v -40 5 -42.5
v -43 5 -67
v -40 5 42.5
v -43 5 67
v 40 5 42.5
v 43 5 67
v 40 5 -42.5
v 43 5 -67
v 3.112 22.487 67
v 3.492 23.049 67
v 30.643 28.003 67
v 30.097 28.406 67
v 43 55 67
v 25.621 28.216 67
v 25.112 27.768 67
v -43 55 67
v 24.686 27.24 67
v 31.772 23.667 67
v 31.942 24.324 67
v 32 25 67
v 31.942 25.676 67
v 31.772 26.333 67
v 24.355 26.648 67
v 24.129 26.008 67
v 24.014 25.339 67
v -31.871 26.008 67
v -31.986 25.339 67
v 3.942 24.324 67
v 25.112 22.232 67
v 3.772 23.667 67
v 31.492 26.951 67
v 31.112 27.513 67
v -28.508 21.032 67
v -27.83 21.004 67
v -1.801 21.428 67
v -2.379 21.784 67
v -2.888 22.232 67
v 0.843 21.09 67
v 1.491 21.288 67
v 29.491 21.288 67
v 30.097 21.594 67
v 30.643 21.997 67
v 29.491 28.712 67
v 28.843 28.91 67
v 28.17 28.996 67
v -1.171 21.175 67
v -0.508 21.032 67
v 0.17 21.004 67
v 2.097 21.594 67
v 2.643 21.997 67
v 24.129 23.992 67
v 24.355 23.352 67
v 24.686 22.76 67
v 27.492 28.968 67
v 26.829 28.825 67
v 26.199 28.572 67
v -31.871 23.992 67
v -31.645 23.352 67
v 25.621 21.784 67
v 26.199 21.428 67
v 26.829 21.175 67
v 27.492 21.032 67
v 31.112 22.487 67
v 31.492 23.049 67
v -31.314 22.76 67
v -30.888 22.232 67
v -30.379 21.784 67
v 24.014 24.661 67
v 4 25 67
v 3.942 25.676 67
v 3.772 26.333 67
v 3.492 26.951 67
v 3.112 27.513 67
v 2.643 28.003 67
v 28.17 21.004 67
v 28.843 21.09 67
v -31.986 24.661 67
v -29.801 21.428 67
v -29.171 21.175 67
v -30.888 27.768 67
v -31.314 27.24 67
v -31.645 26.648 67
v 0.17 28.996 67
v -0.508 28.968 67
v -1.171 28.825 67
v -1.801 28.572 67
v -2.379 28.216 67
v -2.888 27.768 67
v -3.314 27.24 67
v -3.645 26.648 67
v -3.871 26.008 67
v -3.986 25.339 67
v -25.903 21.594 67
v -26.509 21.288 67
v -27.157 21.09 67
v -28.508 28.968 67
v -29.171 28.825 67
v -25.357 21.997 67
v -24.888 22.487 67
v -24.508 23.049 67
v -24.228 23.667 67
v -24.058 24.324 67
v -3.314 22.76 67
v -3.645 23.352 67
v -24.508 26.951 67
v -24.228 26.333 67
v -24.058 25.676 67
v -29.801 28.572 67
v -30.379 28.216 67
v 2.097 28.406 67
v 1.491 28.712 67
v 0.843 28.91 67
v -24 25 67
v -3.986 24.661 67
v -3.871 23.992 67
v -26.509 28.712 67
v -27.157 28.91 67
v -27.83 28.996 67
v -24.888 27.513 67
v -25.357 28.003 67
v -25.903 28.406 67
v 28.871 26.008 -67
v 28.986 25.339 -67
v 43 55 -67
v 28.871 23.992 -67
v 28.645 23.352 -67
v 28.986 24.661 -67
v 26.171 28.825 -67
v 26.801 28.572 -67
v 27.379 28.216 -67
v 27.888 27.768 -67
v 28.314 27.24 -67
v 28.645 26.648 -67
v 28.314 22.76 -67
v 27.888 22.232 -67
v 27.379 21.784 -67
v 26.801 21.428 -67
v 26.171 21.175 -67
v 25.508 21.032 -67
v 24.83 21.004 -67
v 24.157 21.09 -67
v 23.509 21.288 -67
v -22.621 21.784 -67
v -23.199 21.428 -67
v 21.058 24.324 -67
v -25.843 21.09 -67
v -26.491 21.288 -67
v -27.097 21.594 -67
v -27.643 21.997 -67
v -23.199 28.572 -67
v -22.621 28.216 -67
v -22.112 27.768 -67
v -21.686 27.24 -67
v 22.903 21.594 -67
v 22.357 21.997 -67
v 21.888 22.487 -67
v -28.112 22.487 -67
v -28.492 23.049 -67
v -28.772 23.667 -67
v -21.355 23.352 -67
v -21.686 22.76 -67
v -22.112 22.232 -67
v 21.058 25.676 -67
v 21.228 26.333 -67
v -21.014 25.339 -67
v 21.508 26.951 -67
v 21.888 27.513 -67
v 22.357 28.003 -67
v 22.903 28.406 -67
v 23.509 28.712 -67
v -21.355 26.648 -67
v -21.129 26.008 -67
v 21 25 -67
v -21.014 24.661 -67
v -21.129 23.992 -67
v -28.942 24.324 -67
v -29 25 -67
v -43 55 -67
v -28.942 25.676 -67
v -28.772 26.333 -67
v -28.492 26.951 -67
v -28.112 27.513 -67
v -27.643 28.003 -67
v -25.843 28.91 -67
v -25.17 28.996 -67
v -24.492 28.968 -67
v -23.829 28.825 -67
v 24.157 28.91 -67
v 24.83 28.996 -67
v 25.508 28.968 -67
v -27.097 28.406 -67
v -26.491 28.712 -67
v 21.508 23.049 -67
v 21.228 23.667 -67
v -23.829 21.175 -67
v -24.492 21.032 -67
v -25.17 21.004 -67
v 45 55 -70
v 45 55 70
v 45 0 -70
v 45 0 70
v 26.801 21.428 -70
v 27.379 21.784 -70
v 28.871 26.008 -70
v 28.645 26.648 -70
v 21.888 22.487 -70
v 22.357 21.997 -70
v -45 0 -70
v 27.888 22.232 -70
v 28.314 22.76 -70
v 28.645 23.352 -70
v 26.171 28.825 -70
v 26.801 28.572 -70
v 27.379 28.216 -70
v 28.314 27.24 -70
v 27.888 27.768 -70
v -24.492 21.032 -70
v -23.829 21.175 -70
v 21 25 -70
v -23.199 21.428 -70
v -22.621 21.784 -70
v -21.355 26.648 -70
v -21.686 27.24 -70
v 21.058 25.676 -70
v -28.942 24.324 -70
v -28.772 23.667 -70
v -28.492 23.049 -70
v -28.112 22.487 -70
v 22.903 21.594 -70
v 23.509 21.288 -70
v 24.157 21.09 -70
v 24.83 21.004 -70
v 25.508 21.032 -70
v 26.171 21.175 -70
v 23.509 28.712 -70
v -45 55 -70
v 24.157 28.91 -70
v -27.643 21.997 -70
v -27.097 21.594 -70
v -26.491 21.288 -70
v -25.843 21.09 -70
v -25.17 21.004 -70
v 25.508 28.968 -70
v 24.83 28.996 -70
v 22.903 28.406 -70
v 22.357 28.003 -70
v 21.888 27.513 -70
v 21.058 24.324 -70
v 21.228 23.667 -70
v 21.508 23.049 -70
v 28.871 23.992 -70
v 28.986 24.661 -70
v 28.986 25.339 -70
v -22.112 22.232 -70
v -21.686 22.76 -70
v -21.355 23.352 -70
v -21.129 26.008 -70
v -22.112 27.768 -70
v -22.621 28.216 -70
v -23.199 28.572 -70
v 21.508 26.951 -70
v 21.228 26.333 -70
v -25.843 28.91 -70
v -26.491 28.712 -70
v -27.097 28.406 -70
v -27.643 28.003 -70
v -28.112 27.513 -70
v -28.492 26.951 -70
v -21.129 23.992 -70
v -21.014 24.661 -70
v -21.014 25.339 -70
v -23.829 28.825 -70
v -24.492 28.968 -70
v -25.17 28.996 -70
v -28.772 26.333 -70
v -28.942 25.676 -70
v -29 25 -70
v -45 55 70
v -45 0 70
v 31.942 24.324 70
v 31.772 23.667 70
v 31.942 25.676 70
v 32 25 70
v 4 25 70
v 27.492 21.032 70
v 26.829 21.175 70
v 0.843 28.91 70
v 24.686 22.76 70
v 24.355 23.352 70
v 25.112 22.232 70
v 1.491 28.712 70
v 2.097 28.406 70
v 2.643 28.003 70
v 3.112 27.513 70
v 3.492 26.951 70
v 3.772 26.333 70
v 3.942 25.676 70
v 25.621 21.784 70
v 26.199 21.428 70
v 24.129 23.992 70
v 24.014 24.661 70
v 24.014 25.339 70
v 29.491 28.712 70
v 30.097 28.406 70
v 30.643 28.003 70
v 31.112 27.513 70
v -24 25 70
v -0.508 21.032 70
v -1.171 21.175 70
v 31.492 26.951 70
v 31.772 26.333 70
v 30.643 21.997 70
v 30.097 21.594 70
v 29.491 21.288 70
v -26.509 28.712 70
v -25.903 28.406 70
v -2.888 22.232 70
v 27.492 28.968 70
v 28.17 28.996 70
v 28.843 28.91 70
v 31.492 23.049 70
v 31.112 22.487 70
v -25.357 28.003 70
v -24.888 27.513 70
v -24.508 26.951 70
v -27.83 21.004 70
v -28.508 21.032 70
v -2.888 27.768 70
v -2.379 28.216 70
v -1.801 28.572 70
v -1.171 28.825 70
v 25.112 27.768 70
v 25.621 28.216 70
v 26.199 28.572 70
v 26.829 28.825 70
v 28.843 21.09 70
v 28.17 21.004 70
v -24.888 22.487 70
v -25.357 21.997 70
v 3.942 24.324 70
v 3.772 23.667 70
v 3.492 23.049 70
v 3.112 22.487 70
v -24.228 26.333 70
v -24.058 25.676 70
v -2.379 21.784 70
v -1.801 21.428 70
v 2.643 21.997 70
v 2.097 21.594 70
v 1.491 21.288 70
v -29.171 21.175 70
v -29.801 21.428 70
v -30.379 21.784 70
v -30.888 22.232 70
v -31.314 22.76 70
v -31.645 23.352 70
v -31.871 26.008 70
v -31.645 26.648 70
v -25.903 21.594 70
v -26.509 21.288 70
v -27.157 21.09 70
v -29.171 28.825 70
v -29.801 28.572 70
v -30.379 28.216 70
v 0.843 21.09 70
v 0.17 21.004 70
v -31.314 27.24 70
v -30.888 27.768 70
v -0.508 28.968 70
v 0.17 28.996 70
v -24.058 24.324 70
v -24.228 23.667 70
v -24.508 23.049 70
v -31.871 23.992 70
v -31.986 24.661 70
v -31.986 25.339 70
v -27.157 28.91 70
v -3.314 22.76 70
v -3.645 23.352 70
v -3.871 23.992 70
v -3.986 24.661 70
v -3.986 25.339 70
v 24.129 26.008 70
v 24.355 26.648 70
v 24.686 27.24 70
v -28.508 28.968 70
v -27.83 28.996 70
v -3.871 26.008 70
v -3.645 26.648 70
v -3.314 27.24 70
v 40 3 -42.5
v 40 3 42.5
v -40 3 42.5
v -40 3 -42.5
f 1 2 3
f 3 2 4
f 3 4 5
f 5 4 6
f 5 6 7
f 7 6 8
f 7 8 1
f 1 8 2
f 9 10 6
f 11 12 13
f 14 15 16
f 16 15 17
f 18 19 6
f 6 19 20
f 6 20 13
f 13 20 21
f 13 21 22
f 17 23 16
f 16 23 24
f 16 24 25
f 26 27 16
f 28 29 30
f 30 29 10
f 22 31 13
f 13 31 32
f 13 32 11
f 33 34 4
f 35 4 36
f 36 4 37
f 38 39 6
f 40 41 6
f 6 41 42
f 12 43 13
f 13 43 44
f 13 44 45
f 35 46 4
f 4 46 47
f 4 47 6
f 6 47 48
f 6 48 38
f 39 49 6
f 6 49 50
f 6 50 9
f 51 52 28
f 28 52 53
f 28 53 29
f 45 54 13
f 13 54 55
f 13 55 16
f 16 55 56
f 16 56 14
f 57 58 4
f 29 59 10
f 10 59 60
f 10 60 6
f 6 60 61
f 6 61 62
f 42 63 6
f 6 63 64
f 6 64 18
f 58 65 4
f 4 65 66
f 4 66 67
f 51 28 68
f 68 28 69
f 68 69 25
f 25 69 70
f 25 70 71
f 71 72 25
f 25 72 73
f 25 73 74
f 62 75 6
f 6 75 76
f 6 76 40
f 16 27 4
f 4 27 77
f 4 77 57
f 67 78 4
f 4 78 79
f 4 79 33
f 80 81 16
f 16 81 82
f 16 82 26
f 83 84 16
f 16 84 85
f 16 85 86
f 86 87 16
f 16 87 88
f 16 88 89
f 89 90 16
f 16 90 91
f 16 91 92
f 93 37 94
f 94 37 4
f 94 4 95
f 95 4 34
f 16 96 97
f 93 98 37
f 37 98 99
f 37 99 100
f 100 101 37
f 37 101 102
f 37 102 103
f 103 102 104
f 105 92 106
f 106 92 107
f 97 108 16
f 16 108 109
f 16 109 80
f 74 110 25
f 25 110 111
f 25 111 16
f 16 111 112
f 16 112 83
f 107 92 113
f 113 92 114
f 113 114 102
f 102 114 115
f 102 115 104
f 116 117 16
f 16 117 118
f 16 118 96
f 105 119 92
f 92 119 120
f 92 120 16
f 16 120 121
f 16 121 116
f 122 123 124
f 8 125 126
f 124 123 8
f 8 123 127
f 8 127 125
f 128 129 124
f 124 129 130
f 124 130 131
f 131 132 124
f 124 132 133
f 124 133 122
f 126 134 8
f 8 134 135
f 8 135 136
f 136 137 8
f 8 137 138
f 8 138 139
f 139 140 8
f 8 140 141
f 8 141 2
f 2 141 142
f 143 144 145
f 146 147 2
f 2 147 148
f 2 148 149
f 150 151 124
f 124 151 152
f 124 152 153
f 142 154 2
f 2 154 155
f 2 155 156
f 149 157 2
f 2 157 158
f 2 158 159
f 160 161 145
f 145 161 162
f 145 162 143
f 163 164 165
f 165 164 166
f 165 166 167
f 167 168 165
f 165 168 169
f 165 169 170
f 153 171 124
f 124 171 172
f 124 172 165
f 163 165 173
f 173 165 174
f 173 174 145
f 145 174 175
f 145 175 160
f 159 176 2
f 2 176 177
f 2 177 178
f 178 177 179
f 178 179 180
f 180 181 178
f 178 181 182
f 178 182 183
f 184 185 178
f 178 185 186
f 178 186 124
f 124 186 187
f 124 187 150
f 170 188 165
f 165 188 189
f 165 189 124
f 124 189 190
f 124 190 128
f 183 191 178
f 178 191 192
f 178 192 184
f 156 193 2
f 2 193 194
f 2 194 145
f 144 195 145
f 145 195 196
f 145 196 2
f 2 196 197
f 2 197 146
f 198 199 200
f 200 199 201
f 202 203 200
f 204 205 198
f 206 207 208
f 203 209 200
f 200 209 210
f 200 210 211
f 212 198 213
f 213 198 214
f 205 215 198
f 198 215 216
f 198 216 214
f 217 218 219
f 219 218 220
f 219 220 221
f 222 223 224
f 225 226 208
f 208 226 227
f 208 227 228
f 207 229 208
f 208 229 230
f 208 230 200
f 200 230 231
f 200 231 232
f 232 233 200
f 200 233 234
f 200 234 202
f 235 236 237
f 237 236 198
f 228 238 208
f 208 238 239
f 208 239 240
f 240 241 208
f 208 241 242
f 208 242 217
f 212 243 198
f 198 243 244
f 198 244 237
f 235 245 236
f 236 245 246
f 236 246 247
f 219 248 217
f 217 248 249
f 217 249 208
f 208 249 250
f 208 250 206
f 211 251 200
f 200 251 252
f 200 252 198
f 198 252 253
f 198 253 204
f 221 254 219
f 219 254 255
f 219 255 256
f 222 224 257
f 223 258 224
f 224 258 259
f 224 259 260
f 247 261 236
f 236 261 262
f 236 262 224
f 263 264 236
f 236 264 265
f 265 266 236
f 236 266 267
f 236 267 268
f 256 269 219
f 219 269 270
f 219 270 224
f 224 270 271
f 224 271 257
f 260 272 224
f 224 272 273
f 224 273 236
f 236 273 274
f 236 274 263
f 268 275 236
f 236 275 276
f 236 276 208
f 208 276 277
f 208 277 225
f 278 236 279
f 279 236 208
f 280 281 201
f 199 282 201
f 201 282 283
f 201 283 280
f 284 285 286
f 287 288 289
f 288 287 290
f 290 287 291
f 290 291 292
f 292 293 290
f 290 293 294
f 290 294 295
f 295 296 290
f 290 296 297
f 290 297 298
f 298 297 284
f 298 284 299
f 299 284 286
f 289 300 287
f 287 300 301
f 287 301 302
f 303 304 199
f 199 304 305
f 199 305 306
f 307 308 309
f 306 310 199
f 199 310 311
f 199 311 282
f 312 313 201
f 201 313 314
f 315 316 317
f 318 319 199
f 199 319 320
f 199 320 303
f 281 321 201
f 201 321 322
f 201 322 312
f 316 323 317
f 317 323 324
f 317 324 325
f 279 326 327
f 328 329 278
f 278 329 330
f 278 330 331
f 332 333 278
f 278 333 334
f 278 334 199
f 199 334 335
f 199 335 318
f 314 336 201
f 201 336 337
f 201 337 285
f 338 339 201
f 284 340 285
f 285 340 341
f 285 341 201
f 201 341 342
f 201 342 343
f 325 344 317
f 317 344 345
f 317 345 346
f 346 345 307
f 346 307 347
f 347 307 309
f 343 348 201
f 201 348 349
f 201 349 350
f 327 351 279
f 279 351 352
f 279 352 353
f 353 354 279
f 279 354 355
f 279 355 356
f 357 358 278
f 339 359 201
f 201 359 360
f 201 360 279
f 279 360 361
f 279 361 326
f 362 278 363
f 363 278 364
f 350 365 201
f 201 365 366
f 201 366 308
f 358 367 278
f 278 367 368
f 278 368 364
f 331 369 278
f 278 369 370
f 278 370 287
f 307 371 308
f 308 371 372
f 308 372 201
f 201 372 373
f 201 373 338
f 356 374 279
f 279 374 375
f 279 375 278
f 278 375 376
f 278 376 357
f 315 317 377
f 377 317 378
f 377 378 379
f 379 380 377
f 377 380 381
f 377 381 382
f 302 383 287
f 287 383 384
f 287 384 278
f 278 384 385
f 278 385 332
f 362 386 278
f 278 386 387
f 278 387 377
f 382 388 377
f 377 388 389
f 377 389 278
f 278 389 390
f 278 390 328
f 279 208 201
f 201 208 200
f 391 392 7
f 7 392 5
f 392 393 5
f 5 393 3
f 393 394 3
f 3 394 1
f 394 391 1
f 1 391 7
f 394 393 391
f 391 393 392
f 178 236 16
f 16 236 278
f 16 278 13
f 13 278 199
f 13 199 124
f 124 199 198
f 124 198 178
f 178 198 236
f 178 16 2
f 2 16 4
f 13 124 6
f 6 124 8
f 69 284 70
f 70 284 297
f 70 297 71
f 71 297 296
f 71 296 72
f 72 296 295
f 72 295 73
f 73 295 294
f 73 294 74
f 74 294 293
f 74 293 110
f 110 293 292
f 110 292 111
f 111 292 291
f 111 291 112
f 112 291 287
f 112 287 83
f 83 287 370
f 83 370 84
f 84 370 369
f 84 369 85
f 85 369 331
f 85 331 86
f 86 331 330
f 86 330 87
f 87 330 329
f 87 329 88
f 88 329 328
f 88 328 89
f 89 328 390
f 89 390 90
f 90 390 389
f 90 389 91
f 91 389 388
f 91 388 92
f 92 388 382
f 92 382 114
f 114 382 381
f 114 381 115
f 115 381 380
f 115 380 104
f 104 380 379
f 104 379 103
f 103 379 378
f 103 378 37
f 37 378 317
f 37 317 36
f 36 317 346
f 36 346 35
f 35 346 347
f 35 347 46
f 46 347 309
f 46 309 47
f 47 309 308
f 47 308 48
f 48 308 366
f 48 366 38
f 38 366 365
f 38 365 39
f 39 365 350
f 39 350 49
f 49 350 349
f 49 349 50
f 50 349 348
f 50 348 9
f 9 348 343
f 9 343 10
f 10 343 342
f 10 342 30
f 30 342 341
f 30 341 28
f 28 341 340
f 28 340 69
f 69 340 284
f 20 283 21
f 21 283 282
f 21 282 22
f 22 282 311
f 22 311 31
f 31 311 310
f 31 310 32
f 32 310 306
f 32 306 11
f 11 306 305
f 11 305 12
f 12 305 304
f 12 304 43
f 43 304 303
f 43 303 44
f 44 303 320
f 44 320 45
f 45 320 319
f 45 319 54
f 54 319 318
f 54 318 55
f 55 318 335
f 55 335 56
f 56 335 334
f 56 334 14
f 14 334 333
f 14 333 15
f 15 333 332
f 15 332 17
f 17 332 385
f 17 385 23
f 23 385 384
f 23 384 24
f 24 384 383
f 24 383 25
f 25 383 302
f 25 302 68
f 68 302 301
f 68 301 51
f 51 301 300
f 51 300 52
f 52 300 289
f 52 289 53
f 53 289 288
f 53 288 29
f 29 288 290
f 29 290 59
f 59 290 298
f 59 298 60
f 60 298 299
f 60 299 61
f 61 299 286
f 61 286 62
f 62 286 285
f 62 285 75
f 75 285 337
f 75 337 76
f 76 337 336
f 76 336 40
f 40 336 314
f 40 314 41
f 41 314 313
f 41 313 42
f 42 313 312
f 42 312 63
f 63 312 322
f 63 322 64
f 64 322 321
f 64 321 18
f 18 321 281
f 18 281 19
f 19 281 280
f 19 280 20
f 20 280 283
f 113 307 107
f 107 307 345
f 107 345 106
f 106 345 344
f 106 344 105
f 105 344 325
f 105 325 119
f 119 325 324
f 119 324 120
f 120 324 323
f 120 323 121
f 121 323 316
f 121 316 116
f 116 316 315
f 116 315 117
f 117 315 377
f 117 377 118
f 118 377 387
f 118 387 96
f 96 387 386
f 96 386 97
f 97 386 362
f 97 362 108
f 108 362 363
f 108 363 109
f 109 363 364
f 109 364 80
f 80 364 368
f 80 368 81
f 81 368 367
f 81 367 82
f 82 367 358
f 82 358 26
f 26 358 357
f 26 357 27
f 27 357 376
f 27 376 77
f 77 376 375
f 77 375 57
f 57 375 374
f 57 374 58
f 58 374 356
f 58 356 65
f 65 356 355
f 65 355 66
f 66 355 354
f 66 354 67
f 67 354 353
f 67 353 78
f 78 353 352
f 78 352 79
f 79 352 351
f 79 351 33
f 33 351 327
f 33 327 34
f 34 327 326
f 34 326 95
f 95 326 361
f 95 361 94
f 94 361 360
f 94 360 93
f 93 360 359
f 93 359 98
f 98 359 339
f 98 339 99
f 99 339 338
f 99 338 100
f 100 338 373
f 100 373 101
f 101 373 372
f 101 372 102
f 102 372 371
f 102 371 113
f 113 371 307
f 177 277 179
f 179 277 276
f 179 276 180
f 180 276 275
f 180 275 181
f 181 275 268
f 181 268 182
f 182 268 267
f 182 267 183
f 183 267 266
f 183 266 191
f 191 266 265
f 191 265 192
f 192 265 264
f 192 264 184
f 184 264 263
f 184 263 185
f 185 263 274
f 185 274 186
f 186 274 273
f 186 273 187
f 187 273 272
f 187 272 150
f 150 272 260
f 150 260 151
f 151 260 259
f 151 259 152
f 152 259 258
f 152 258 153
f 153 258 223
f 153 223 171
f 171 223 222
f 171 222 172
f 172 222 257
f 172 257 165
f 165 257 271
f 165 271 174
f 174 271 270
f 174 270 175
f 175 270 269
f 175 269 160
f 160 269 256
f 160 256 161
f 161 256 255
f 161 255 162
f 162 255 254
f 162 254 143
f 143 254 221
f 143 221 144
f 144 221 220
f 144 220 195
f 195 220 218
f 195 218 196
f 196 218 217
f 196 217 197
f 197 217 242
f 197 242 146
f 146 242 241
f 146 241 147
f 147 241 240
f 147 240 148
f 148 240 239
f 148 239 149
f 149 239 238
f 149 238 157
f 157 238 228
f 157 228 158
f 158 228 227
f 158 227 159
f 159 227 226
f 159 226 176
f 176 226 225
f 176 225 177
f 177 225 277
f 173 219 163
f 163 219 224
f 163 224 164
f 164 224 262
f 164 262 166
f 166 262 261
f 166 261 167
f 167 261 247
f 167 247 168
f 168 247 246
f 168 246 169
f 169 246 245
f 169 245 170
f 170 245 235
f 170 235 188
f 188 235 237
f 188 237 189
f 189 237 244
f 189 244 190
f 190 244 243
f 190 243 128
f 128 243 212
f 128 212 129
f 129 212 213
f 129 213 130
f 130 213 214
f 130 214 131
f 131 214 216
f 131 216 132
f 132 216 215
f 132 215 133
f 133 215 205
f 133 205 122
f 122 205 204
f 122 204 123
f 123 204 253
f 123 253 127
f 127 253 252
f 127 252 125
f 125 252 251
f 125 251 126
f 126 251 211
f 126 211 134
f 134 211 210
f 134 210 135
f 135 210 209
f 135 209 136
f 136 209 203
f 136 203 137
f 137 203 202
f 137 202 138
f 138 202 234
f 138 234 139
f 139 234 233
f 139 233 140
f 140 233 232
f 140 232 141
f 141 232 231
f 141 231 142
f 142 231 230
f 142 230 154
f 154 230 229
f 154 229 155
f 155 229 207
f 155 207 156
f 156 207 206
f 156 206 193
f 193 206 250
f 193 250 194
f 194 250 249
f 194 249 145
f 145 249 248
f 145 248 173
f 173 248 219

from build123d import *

# Parameters (mm, degrees)
SKETCH1_W           = 90
SKETCH1_H           = 140
BOSS_EXTRUDE1_DEPTH = 5
SKETCH2_W           = 80
SKETCH2_H           = 85
CUT_EXTRUDE1_DEPTH  = 2
SKETCH3_W           = 90
SKETCH3_H           = 3
BOSS_EXTRUDE2_DEPTH = 50
SKETCH4_W           = 2
SKETCH4_H           = 134
BOSS_EXTRUDE3_DEPTH = 50
SKETCH5_R           = 4
CUT_EXTRUDE2_DEPTH  = 3
SKETCH6_R           = 4
CUT_EXTRUDE3_DEPTH  = 3


with BuildPart() as part:
    # Sketch1 → Boss-Extrude1 (new body)
    with BuildSketch(Plane(origin=(0, 0, 0), x_dir=(1, 0, 0), z_dir=(0, 1, 0))):
        Rectangle(SKETCH1_W, SKETCH1_H)
    extrude(amount=BOSS_EXTRUDE1_DEPTH)

    # Sketch2 → Cut-Extrude1 (cut)
    with BuildSketch(Plane(origin=(0, 5, 0), x_dir=(1, 0, 0), z_dir=(0, 1, 0))):
        Rectangle(SKETCH2_W, SKETCH2_H)
    extrude(amount=-CUT_EXTRUDE1_DEPTH, mode=Mode.SUBTRACT)

    # Sketch3 → Boss-Extrude2 (add)
    with BuildSketch(Plane(origin=(0, 5, 0), x_dir=(1, 0, 0), z_dir=(0, 1, 0))):
        with Locations((0, -68.5)):
            Rectangle(SKETCH3_W, SKETCH3_H)
        with Locations((0, 68.5)):
            Rectangle(SKETCH3_W, SKETCH3_H)
    extrude(amount=BOSS_EXTRUDE2_DEPTH)

    # Sketch4 → Boss-Extrude3 (add)
    with BuildSketch(Plane(origin=(0, 5, 0), x_dir=(1, 0, 0), z_dir=(0, 1, 0))):
        with Locations((-44, 0)):
            Rectangle(SKETCH4_W, SKETCH4_H)
        with Locations((44, 0)):
            Rectangle(SKETCH4_W, SKETCH4_H)
    extrude(amount=BOSS_EXTRUDE3_DEPTH)

    # Sketch5 → Cut-Extrude2 (cut)
    with BuildSketch(Plane.XY.offset(70)):
        with Locations((0, 25)):
            Circle(SKETCH5_R)
        with Locations((28, 25)):
            Circle(SKETCH5_R)
        with Locations((-28, 25)):
            Circle(SKETCH5_R)
    extrude(amount=-CUT_EXTRUDE2_DEPTH, mode=Mode.SUBTRACT)

    # Sketch6 → Cut-Extrude3 (cut)
    with BuildSketch(Plane(origin=(0, 0, -70), x_dir=(-1, 0, 0), z_dir=(0, 0, -1))):
        with Locations((-25, 25)):
            Circle(SKETCH6_R)
        with Locations((25, 25)):
            Circle(SKETCH6_R)
    extrude(amount=-CUT_EXTRUDE3_DEPTH, mode=Mode.SUBTRACT)


solid = part.part
